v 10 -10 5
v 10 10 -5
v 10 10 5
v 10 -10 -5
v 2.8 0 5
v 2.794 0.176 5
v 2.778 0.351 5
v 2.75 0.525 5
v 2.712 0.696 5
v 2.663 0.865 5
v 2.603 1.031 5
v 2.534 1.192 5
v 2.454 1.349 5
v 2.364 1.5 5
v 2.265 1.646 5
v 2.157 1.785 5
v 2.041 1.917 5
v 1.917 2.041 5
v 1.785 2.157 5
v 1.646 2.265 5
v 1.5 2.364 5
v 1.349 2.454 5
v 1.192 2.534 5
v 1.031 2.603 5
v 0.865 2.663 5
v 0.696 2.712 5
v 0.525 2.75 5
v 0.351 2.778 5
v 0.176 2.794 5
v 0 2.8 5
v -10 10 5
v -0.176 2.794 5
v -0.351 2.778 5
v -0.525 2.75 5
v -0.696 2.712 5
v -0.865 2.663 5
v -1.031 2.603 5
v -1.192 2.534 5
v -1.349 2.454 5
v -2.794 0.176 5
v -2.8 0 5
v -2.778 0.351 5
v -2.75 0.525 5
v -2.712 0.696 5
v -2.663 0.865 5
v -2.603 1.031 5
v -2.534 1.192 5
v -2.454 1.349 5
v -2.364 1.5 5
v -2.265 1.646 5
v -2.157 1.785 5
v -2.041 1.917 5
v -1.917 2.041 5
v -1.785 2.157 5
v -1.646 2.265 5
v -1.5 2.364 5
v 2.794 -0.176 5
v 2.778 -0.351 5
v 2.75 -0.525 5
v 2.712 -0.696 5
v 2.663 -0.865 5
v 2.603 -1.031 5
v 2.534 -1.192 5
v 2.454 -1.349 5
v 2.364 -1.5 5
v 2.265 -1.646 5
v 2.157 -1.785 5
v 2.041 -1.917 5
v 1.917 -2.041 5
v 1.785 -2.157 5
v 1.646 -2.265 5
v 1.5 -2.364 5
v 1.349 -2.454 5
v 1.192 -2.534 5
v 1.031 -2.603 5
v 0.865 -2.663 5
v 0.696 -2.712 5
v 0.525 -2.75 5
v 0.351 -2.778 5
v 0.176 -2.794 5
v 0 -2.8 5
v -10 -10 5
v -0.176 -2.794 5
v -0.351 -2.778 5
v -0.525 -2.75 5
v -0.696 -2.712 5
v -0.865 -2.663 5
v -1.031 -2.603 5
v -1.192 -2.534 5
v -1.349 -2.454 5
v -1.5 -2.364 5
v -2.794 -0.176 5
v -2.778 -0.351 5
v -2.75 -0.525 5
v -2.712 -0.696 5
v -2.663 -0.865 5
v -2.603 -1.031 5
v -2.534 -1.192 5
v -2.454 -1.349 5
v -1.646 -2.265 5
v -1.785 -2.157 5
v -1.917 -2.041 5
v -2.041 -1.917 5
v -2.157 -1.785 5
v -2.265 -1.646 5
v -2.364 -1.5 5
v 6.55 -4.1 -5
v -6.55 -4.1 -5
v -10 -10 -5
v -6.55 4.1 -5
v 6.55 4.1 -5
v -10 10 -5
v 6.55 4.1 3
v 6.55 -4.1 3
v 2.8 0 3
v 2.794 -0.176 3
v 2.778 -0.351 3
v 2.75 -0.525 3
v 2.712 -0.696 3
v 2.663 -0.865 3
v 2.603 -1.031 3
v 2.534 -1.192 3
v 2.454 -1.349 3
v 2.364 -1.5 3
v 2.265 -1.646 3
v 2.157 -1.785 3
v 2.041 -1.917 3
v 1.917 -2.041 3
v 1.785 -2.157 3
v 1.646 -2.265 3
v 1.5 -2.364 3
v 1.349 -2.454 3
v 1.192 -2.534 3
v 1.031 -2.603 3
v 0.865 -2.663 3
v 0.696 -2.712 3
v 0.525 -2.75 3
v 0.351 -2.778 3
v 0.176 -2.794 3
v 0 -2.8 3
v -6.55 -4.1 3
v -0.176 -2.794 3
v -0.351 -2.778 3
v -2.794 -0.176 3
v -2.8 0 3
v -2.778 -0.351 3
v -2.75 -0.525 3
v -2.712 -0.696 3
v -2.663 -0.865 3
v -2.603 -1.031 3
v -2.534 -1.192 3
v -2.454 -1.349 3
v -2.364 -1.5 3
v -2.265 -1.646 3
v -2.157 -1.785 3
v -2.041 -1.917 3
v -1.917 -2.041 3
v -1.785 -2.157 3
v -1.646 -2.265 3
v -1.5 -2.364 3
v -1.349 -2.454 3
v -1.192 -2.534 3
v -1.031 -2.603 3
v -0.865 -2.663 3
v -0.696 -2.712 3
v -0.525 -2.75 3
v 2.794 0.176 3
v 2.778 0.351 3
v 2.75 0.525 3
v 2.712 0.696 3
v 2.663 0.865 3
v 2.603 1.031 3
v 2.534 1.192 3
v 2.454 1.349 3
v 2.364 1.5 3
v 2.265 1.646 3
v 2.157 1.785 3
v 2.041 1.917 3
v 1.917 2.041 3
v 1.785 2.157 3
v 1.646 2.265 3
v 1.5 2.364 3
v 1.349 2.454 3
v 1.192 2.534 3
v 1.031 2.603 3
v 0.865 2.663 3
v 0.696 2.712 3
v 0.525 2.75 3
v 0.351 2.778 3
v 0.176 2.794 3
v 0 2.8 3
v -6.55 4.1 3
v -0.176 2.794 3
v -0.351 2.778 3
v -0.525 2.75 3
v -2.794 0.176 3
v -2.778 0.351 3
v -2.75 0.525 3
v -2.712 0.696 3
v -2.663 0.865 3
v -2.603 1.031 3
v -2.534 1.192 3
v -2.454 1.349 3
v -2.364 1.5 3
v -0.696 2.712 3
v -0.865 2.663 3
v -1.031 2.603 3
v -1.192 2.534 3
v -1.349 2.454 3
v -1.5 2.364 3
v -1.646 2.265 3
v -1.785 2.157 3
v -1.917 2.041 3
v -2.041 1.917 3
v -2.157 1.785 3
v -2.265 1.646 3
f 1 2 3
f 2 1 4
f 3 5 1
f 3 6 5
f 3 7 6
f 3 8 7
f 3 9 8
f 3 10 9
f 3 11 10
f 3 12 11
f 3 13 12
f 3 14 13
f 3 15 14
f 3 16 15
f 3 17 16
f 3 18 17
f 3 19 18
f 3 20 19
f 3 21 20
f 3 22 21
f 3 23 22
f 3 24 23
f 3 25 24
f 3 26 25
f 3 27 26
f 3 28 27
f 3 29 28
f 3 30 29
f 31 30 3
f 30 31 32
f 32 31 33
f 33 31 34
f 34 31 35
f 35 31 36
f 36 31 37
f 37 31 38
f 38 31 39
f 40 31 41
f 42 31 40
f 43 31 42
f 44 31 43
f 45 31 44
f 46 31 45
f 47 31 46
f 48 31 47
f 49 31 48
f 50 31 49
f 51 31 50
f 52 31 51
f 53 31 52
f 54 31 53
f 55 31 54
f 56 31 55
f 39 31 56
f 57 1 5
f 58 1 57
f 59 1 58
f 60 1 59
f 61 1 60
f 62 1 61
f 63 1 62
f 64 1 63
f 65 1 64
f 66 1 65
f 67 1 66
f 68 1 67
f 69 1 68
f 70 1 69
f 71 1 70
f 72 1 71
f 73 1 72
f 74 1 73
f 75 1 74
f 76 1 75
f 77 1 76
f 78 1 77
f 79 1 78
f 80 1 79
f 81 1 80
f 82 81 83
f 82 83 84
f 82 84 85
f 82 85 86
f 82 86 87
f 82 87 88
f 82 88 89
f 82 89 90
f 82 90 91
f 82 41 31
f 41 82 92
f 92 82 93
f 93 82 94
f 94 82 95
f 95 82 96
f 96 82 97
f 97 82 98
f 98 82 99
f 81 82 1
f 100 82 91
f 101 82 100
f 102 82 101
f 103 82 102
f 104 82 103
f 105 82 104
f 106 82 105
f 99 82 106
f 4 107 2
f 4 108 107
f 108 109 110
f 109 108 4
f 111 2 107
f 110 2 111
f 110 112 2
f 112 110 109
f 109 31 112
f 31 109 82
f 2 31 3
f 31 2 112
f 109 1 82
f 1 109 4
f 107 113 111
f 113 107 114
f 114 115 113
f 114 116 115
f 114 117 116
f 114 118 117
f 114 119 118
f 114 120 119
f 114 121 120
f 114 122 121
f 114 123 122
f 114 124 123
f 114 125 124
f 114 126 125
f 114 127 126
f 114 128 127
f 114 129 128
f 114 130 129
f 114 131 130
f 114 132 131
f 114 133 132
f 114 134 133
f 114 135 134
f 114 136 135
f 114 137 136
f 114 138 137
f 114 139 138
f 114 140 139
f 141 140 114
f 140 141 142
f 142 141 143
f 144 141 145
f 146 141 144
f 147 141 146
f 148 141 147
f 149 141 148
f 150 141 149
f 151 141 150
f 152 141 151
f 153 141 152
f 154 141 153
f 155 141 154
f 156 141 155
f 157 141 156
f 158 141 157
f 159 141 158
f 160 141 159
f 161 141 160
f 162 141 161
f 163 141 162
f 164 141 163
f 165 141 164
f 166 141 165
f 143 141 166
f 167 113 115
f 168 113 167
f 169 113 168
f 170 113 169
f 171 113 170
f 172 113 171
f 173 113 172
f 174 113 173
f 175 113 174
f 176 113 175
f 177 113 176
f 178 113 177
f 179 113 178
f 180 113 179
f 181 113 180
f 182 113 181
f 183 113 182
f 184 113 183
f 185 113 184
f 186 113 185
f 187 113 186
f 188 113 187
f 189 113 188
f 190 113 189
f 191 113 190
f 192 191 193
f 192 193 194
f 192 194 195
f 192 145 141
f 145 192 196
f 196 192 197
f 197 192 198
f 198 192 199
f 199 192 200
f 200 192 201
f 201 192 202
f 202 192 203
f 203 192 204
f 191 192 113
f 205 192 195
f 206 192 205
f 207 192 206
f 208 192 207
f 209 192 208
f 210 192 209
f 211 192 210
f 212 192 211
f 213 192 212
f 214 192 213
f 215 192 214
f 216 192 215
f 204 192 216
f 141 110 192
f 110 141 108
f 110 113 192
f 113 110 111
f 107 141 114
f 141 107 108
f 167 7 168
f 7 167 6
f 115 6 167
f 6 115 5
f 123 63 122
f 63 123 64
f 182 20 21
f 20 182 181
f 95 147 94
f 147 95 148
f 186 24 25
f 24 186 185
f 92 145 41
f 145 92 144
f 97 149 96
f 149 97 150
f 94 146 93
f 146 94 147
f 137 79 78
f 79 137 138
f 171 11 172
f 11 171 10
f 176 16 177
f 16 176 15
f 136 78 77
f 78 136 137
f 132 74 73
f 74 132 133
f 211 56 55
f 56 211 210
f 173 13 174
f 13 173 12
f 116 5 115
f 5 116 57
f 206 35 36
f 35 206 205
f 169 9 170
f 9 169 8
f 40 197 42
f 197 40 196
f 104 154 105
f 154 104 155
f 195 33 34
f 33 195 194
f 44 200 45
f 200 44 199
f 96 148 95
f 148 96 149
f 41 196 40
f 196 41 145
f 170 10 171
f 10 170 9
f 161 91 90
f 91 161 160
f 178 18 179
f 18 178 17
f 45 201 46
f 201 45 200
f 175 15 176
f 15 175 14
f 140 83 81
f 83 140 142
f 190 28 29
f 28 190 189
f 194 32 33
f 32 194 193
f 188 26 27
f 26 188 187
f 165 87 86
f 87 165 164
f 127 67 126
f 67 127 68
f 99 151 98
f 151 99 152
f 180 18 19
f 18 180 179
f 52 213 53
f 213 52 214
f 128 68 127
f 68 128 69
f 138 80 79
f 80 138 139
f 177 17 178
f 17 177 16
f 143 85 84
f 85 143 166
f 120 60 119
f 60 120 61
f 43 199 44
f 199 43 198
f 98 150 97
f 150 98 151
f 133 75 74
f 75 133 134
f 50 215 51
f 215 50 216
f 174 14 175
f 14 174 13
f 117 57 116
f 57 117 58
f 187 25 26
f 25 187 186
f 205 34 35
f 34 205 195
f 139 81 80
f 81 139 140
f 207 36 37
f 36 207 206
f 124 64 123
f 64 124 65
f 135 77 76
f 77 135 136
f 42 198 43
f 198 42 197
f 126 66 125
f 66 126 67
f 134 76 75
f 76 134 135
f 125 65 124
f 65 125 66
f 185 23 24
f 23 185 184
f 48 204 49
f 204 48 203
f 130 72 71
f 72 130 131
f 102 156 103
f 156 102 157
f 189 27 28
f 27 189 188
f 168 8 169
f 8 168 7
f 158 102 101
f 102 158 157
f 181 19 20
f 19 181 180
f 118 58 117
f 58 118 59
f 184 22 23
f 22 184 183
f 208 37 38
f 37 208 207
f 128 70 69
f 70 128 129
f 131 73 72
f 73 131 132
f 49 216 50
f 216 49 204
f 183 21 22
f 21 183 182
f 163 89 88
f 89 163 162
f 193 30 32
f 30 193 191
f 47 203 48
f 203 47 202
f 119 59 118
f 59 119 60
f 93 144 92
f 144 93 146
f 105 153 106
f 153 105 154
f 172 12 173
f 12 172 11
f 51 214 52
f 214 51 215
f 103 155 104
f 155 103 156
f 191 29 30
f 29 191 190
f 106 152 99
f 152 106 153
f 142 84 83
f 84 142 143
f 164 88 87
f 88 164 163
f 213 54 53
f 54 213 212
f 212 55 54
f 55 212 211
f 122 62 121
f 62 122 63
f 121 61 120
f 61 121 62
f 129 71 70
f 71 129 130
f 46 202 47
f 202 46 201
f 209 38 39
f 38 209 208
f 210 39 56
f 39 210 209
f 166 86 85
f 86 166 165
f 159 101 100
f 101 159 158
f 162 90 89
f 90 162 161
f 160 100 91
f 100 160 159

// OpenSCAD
module switch_slot() {
    render()
    union() {
        difference() {
            cube(size = [20, 20, 10], center = true);
            translate([0, 0, -2])
                render()
                union() {
                    cube(size = [13.1, 8.2, 10], center = true);
                    translate([0, 0, 10])
                    cylinder(h = 10, r = 2.8, center = true, $fn=100);
                }
        }
    }
}

switch_slot();
